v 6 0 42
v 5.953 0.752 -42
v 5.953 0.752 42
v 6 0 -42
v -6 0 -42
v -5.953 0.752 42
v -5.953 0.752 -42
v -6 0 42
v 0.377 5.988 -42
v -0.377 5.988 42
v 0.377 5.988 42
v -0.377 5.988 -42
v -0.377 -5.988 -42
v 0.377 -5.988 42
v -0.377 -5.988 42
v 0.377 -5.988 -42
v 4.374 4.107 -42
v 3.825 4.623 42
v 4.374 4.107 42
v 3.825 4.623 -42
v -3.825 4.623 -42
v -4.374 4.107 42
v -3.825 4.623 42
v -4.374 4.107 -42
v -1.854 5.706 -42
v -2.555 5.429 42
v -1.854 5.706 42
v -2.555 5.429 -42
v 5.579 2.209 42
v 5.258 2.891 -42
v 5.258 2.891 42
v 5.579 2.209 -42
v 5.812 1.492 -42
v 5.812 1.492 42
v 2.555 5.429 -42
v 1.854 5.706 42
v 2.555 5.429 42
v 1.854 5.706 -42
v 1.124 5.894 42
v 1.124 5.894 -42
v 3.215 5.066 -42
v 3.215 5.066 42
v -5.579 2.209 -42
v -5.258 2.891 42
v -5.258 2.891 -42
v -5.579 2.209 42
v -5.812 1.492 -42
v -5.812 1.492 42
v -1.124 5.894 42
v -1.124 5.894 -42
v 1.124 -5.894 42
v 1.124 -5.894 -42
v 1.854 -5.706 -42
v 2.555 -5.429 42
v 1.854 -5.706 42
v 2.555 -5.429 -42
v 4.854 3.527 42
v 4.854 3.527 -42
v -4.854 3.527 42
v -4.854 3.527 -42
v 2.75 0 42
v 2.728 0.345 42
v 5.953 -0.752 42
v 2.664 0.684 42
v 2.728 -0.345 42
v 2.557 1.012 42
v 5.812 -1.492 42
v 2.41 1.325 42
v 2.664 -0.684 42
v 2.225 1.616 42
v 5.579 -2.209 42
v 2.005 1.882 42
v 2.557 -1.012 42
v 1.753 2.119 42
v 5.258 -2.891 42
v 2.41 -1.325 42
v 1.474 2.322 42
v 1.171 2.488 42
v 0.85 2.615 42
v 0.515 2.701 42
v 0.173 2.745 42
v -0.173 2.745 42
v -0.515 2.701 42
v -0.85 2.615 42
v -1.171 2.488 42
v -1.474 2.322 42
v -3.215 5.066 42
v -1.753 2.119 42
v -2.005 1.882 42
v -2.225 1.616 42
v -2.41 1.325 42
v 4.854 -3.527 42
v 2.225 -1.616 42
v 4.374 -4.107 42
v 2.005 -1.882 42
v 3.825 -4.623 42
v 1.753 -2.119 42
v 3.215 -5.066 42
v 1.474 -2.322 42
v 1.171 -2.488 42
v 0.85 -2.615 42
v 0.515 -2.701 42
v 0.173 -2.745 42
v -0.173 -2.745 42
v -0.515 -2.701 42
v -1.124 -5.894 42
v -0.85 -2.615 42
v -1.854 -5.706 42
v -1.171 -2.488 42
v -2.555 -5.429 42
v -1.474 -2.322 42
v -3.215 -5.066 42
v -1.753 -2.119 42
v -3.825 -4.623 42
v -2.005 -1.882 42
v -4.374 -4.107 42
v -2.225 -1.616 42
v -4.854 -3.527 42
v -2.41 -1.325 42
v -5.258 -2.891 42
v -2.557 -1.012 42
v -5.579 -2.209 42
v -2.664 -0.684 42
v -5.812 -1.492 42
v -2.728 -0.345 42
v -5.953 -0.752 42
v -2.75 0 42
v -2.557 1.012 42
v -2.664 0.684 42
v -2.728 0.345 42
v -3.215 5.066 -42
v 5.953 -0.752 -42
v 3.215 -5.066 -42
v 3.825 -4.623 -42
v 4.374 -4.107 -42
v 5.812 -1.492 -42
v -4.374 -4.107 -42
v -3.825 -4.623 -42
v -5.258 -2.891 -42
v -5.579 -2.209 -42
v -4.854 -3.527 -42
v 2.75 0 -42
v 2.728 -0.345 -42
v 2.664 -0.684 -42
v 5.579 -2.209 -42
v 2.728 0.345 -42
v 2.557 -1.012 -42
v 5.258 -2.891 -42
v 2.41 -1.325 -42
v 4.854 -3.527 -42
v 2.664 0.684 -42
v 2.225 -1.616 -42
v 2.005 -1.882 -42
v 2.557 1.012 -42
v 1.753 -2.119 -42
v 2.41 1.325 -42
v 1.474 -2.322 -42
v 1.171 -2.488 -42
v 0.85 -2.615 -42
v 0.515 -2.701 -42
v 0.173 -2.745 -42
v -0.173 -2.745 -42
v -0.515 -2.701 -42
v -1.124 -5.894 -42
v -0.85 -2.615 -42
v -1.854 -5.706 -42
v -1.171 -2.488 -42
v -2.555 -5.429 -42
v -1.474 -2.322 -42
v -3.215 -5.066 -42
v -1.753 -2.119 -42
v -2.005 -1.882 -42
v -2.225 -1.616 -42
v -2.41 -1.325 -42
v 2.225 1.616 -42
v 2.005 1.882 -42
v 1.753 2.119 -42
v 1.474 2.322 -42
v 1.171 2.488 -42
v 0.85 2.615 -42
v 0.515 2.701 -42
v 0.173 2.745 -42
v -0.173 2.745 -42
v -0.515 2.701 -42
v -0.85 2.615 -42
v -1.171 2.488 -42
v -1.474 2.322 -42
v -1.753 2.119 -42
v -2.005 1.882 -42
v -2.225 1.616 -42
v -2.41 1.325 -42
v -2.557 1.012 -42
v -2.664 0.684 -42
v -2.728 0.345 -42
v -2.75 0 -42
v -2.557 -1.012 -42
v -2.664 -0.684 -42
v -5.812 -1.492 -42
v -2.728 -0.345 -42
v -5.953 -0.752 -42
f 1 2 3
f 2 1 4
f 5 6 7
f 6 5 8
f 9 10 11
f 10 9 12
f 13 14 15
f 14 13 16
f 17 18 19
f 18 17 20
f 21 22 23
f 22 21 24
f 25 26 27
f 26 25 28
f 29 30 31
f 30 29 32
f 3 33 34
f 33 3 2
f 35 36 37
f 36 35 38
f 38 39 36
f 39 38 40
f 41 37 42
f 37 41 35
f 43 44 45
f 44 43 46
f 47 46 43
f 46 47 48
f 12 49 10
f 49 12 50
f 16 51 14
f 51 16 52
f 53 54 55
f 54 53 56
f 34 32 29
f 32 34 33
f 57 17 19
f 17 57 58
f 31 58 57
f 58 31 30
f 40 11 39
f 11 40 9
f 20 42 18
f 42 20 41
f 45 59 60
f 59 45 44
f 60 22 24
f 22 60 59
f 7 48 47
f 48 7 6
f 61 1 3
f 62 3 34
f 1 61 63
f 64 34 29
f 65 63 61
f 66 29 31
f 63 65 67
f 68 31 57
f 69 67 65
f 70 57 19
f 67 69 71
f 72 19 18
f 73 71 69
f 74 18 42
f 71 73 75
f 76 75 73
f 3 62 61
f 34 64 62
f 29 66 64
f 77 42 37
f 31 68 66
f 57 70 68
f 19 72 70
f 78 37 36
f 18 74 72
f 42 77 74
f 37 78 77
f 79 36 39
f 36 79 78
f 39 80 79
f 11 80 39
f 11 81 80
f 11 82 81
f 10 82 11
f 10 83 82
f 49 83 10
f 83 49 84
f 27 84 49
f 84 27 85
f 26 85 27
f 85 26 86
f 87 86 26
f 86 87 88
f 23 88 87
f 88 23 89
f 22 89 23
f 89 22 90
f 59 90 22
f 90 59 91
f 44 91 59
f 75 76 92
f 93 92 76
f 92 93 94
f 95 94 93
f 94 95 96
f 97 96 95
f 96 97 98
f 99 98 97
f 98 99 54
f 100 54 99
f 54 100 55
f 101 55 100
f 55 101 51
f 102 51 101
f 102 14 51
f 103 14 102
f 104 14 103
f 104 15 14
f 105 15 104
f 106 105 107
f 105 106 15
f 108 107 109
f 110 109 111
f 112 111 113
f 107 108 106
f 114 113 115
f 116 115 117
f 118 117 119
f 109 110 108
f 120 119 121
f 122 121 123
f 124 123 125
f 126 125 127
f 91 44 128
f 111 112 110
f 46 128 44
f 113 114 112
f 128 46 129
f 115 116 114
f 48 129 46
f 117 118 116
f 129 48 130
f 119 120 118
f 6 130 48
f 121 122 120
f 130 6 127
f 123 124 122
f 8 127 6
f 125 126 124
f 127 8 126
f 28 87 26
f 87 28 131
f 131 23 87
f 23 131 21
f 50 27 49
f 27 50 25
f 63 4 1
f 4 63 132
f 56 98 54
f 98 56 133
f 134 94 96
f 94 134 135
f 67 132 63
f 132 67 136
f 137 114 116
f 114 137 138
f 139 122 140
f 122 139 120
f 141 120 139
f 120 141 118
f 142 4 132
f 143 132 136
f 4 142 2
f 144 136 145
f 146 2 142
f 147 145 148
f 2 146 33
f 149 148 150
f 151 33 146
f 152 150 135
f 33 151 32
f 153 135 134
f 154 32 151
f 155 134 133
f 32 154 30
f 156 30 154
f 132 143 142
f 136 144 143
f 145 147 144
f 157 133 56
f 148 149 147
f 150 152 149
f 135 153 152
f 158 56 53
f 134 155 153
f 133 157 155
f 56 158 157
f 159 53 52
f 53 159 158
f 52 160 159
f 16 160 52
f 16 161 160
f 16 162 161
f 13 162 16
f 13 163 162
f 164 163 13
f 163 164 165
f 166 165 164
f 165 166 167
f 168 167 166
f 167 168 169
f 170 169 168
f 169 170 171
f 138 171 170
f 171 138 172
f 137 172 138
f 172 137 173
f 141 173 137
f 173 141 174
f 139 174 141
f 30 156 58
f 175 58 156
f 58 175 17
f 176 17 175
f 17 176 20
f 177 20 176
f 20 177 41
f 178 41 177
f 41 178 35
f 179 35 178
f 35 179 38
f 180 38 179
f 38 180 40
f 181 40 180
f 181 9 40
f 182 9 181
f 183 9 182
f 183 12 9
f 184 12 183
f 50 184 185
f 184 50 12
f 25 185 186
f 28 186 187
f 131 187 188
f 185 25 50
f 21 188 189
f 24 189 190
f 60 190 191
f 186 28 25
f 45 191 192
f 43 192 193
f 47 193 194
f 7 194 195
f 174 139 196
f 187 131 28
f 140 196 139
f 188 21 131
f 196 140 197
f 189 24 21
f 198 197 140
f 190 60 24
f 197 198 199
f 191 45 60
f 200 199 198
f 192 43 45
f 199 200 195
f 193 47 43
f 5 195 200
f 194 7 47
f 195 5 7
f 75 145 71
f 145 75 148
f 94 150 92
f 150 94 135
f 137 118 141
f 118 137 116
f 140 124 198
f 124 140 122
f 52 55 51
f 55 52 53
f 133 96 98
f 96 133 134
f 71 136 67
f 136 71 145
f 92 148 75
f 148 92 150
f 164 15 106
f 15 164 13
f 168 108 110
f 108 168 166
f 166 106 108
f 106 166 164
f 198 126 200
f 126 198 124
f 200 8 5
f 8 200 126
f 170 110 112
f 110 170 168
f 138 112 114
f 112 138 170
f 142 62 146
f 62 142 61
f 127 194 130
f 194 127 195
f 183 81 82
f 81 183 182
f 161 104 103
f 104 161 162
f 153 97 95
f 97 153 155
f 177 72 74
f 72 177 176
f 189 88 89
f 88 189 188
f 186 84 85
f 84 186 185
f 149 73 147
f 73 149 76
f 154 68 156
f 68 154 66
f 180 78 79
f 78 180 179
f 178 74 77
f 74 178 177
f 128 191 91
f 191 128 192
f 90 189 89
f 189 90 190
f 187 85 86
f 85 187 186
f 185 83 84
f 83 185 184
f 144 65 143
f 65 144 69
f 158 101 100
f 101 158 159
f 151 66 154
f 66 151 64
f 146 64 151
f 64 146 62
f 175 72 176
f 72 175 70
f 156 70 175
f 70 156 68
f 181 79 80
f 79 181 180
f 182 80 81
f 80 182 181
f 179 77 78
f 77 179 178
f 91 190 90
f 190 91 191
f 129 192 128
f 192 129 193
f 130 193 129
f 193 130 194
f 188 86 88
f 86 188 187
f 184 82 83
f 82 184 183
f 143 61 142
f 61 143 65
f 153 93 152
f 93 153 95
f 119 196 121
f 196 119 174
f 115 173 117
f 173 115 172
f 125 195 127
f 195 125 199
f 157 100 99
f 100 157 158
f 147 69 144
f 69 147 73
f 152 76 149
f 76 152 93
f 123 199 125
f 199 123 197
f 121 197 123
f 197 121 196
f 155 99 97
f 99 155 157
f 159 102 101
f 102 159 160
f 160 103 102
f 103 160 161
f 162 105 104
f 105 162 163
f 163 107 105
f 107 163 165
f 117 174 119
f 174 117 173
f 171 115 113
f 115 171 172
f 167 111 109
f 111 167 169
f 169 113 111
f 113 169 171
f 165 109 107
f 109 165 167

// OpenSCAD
$fn = 50;


difference() {
	union() {
		translate(v = [0, 0, -42.0000000000]) {
			cylinder(h = 84, r = 6.0000000000);
		}
	}
	union() {
		translate(v = [0, 0, -100.0000000000]) {
			cylinder(h = 200, r = 2.7500000000);
		}
	}
}
